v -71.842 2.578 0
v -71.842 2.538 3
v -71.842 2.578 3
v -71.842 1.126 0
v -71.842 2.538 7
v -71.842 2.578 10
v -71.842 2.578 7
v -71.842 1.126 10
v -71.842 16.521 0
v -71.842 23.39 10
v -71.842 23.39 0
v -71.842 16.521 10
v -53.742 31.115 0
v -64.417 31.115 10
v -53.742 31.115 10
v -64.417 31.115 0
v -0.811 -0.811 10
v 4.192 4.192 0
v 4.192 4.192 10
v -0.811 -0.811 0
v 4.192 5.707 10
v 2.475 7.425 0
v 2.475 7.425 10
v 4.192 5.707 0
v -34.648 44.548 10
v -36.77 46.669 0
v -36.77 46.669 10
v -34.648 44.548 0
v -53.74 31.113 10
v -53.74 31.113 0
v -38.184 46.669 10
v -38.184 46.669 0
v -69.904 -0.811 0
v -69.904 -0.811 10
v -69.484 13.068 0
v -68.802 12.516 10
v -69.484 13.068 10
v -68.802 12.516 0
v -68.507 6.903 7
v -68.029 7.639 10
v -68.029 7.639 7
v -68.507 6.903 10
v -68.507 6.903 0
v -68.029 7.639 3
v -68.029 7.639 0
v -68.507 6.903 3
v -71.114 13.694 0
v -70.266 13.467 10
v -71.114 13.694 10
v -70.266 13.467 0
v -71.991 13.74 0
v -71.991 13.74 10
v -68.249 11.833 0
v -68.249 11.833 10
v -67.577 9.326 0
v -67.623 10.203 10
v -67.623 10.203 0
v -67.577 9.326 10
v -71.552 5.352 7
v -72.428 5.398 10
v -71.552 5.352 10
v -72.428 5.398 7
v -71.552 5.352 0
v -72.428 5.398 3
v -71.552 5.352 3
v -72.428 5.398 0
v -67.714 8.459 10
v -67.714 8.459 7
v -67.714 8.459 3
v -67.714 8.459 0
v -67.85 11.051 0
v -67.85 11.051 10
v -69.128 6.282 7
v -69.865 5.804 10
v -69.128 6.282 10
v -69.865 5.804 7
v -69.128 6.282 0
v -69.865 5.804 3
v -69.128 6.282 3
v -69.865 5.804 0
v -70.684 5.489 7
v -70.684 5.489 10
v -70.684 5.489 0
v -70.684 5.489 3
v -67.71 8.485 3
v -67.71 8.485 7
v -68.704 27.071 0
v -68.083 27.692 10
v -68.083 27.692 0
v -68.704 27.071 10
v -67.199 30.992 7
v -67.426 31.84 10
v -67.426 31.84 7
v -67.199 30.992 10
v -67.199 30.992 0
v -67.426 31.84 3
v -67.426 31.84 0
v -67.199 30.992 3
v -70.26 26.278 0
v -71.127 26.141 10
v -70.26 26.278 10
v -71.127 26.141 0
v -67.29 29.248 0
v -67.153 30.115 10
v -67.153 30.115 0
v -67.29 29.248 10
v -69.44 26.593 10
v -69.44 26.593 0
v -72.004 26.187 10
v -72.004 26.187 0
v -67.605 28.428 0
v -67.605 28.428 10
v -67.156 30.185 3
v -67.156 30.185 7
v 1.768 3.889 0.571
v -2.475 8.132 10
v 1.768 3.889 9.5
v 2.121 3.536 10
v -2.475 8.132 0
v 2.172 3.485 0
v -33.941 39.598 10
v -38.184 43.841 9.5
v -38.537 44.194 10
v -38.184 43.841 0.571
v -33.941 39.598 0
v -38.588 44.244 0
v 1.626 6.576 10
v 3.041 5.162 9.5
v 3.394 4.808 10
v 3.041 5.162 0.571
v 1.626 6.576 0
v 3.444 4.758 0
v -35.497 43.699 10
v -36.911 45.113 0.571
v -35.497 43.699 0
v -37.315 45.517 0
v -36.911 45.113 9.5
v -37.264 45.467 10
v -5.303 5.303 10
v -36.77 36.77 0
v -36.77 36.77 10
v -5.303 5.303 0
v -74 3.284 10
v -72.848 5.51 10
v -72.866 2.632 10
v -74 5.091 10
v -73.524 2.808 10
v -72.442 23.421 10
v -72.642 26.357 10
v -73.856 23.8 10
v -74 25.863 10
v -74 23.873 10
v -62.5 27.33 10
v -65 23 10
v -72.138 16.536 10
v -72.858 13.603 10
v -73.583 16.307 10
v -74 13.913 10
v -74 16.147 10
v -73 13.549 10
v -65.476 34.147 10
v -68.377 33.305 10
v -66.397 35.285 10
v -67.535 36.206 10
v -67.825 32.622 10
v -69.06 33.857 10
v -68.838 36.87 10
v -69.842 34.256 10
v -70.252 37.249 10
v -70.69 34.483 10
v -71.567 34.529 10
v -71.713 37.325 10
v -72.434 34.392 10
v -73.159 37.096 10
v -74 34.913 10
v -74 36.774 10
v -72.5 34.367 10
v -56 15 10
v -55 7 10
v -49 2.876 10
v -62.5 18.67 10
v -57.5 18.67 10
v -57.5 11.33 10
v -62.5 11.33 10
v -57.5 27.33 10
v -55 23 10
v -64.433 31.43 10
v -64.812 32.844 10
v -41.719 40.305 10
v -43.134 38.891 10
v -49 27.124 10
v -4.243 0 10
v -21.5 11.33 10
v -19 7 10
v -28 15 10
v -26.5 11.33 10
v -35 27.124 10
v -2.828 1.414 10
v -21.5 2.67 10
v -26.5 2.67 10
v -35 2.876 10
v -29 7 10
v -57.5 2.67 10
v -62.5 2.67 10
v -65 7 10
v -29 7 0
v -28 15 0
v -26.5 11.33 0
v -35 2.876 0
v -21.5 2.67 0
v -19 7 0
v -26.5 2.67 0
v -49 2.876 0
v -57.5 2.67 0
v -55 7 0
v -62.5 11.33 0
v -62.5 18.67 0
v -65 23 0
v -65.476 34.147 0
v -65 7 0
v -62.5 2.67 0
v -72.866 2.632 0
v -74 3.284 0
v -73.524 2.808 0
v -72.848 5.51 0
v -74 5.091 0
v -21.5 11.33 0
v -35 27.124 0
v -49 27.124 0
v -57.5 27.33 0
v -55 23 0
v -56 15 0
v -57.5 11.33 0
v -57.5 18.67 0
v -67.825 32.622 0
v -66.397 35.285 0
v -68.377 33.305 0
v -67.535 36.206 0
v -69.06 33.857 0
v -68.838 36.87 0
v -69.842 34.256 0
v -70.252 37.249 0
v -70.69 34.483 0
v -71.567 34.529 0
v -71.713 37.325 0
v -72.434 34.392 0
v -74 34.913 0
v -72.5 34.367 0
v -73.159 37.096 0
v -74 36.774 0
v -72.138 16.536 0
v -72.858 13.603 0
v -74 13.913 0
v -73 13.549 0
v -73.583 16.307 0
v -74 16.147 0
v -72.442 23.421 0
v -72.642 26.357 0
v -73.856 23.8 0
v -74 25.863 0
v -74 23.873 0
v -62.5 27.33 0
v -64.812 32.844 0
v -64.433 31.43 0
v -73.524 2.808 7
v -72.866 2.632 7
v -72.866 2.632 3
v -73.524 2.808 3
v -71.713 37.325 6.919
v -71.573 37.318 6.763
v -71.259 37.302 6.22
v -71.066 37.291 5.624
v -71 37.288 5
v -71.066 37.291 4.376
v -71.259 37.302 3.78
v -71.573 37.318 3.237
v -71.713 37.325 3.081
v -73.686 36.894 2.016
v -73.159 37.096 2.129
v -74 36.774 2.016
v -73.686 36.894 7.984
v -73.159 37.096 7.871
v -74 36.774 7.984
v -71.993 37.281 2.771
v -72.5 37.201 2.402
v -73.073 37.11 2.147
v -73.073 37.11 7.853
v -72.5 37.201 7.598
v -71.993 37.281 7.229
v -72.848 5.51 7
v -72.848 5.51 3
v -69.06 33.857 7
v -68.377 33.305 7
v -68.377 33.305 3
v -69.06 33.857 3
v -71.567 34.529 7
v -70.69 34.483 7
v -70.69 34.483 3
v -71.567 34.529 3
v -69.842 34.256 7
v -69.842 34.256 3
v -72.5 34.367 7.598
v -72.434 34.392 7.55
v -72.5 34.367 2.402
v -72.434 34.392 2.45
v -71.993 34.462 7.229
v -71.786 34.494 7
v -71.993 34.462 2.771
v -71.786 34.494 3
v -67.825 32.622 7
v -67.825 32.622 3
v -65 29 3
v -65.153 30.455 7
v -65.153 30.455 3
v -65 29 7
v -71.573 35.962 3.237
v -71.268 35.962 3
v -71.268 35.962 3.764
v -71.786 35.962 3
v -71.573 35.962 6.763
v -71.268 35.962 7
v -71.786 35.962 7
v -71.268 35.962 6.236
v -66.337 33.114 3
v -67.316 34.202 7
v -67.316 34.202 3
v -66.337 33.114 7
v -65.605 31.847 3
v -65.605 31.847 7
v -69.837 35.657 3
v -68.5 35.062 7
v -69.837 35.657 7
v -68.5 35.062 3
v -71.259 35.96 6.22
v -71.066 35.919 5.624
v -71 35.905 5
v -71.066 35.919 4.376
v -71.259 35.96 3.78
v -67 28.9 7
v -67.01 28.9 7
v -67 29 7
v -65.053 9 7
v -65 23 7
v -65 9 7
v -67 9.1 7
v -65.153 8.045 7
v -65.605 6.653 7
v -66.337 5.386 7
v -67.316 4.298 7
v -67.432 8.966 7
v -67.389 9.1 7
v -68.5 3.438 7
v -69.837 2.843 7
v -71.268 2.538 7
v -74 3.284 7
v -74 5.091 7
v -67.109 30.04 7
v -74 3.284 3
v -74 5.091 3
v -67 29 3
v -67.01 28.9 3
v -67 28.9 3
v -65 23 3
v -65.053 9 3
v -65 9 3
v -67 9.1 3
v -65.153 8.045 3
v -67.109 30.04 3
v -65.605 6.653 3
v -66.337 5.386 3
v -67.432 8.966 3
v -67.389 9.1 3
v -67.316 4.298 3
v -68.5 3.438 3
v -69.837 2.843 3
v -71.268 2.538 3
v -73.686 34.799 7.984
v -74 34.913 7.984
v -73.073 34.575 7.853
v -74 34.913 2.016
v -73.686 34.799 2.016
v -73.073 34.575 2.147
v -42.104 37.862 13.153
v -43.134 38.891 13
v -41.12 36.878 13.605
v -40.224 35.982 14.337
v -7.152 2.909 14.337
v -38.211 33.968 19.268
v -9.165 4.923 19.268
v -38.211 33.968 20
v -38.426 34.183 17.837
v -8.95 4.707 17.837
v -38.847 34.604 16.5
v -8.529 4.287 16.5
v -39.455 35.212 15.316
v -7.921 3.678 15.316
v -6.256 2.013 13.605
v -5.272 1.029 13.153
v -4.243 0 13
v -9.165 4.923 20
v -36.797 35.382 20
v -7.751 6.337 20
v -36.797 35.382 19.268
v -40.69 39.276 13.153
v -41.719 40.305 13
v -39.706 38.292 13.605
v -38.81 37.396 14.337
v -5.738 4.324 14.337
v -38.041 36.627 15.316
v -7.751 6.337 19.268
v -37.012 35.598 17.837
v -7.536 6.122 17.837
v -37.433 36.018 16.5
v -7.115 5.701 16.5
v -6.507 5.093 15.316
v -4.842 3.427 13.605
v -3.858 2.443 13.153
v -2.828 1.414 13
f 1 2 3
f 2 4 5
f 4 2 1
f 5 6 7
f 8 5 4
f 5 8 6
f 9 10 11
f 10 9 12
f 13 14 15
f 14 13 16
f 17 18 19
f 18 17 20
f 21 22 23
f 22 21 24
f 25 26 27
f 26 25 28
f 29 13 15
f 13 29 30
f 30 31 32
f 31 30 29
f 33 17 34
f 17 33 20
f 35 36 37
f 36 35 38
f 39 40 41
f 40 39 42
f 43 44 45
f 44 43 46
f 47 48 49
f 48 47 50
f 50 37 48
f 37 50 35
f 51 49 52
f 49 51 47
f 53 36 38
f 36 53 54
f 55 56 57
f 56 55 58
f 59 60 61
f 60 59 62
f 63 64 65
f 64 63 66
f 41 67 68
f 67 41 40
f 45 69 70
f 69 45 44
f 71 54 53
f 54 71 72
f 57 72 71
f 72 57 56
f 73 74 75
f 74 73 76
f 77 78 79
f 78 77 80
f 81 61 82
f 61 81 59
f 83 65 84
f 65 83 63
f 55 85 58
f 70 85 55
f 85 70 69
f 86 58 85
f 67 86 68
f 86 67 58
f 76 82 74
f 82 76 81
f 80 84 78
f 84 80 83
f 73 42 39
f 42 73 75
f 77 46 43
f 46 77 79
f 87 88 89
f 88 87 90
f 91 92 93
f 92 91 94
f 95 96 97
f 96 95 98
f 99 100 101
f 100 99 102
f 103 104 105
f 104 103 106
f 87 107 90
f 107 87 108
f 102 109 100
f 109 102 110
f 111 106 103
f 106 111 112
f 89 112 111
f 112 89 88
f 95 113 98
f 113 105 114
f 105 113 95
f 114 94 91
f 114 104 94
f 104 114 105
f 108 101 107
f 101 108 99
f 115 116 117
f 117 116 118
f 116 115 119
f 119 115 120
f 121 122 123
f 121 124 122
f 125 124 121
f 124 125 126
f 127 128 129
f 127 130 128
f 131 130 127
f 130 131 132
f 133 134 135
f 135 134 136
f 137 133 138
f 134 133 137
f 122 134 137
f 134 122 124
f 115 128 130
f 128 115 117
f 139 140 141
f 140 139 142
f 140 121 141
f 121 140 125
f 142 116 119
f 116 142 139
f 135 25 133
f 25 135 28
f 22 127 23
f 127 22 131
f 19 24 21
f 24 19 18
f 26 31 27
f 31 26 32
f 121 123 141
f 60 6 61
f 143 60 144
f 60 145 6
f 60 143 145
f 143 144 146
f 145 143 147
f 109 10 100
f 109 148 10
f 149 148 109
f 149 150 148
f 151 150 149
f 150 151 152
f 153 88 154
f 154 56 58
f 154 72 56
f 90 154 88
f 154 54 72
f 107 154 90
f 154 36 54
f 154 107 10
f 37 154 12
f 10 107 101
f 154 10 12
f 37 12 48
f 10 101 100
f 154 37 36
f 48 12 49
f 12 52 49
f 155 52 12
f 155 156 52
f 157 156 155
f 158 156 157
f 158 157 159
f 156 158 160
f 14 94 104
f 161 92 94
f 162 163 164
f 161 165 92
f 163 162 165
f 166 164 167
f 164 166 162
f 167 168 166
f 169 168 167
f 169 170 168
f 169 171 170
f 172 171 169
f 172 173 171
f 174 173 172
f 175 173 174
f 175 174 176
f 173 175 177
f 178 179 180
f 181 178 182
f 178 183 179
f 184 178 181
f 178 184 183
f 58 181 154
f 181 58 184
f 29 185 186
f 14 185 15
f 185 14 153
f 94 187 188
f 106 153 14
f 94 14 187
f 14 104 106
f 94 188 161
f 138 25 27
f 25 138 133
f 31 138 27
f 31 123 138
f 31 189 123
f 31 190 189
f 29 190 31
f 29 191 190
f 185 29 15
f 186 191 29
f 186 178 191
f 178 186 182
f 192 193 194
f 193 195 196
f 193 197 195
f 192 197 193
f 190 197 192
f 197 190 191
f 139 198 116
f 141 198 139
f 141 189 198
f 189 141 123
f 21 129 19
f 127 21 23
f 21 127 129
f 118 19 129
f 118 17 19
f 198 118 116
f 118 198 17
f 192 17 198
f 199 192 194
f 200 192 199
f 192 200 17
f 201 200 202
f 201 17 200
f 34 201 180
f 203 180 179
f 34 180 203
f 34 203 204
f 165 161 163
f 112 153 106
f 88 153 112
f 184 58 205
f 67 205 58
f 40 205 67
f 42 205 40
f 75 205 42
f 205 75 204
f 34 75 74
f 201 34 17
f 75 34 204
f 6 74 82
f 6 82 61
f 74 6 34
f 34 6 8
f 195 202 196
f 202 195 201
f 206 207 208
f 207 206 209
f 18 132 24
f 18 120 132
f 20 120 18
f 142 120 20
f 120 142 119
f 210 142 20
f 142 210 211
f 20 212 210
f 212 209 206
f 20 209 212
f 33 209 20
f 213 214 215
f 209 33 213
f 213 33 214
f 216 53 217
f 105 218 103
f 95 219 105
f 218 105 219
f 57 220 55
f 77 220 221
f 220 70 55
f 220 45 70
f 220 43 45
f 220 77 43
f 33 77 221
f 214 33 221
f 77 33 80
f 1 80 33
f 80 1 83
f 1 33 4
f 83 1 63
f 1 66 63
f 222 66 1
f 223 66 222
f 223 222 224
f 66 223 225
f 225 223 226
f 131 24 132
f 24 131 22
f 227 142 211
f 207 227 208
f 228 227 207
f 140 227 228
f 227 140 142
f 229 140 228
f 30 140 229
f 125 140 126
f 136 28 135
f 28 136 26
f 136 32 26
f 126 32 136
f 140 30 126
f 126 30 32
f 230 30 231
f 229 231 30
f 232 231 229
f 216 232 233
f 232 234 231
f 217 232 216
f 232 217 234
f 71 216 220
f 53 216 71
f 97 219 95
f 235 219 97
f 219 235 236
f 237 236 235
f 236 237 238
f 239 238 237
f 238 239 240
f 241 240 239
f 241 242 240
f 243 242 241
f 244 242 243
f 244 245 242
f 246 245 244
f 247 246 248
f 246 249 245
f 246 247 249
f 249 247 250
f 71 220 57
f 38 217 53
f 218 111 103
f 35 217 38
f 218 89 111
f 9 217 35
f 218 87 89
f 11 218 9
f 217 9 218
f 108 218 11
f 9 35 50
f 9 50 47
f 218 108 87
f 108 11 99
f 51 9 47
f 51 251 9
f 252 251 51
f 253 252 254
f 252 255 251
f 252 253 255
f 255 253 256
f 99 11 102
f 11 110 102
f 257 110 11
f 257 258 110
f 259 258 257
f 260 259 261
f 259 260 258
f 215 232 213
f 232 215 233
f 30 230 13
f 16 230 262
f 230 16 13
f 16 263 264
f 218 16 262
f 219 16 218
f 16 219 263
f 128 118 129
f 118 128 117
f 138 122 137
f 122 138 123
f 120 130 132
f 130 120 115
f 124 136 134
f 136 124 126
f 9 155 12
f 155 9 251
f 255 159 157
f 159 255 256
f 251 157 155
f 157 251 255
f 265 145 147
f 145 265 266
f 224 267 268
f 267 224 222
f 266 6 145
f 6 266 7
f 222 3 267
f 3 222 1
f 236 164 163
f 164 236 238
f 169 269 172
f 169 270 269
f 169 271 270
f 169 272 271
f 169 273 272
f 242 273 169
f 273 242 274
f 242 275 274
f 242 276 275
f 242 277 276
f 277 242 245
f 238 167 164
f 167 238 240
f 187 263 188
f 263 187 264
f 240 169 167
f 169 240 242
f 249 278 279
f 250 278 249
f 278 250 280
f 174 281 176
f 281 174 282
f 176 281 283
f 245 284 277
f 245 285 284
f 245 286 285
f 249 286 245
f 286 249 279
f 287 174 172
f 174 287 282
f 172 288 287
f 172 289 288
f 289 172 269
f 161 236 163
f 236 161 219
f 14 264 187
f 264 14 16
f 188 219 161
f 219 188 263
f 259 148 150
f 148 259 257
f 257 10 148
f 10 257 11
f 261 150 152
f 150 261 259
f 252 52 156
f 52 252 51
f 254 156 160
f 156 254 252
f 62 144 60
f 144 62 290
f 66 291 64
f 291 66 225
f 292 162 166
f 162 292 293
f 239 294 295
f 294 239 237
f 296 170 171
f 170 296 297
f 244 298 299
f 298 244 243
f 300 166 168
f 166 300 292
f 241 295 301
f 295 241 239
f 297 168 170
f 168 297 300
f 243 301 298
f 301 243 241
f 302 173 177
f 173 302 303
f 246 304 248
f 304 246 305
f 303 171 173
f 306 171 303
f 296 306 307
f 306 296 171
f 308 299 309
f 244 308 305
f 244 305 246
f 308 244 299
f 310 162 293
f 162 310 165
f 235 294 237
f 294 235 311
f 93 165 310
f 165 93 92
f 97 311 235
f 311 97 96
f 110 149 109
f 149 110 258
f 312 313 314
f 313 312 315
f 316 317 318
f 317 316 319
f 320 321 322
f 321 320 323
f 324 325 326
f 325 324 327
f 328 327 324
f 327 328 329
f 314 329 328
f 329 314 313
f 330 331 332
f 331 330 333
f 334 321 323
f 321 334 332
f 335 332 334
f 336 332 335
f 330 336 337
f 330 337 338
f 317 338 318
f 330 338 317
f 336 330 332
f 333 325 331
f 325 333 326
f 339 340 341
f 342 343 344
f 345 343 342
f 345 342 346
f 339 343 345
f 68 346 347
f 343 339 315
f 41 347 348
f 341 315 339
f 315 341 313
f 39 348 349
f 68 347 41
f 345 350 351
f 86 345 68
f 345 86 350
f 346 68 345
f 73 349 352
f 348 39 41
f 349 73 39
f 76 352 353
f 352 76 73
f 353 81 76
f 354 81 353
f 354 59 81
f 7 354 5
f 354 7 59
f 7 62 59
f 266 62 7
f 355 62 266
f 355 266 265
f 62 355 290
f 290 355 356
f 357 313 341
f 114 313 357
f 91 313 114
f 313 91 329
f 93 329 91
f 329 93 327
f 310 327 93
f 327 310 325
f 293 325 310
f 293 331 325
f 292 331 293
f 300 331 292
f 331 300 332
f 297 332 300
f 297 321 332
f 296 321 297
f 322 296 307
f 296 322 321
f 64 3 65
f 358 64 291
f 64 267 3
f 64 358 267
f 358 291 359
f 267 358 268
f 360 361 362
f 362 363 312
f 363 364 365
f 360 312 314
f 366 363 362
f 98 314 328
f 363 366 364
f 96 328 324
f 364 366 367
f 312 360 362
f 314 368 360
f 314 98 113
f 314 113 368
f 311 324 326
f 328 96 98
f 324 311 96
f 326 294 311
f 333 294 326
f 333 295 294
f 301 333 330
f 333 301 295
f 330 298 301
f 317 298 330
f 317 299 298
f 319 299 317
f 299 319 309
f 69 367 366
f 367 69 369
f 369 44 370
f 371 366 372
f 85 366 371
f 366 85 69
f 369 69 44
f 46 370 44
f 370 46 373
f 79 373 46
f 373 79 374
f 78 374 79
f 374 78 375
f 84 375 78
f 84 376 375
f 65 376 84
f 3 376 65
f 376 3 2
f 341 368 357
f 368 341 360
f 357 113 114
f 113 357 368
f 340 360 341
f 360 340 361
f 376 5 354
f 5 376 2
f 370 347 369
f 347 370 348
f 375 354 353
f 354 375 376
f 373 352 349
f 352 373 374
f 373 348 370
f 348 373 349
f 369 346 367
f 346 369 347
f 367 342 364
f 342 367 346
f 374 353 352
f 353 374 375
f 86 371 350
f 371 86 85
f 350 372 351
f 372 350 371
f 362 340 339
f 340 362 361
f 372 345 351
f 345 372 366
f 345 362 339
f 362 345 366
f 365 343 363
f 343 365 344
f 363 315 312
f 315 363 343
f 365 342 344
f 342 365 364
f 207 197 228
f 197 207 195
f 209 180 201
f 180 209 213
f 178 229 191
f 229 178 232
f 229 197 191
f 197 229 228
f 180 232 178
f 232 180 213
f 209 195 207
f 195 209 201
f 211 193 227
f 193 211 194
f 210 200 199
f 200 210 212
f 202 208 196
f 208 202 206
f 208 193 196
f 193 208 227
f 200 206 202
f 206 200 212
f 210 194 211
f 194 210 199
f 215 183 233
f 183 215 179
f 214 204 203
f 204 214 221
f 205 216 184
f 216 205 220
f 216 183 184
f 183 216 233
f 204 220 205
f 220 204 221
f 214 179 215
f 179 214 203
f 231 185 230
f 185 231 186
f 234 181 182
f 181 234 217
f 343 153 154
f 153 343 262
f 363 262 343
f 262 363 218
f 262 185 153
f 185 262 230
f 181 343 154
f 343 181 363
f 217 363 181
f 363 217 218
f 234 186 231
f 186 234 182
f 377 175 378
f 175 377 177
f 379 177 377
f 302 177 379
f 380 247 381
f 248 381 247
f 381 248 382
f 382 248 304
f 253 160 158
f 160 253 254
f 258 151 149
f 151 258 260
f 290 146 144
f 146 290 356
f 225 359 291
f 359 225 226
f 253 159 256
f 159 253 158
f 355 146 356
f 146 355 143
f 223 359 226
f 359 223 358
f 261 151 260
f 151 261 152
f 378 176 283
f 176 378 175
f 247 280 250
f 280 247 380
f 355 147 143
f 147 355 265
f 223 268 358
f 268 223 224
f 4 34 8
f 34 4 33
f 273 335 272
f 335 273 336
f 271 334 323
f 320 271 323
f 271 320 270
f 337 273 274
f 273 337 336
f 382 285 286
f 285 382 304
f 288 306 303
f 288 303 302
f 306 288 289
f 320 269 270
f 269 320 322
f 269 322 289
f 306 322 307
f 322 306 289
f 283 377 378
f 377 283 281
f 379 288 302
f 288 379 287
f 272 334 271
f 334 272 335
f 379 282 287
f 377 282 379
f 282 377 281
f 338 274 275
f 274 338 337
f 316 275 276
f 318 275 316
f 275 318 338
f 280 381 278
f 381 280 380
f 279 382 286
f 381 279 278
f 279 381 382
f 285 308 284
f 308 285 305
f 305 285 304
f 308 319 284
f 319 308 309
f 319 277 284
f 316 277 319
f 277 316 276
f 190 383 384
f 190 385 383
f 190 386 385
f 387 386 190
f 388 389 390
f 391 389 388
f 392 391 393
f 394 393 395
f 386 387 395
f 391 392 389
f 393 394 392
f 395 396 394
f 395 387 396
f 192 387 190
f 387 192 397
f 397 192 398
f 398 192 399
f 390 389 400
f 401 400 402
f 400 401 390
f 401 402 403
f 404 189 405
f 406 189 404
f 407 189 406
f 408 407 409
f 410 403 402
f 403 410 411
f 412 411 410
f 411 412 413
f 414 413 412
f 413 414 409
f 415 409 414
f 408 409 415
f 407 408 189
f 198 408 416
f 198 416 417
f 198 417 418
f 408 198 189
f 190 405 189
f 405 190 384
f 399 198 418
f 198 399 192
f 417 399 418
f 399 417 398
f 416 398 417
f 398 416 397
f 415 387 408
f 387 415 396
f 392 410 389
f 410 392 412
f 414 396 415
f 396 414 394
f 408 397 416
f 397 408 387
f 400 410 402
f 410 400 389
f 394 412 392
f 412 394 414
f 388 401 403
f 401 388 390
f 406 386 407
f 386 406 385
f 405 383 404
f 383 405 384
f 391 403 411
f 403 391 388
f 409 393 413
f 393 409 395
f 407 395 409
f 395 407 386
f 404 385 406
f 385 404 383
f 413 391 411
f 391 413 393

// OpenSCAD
// file: lcd-support-A.scad
//Original Prusa

// PRUSA iteration3
// lcd-support-A
// GNU GPL v3
// Josef Průša <iam@josefprusa.cz> and contributors
// http://www.reprap.org/wiki/Prusa_Mendel
// http://prusamendel.org




module body(){

difference() {
    
    union(){
        translate( [ -55, -2 , 0 ] ) cube( [ 69 , 81 , 10 ] ); 
    }
    
    union (){

    // outer body shape
    translate( [ -69.6, 32, -1 ] ) rotate([0,0,45]) cube( [ 60 , 53 , 15 ] ); 
    translate( [ 13.7, 89.7, -1 ] ) rotate([0,0,135]) cube( [ 60 , 42 , 15 ] );
    translate( [ -19, -9, -1 ] ) cube( [ 60 , 9 , 15 ] );   
    translate( [ 7, -3, -1 ] ) cube( [ 60 , 68 , 16 ] );  
    translate( [ -16, 60, -1 ] ) cube( [ 60 , 50 , 15 ] );
    translate( [ -41, -45, -1 ] ) rotate([0,0,45]) cube( [ 60 , 80 , 13 ] );  
        
    // threaded rods opening
    translate( [ -44 , 57.5 , -1 ] ) cylinder( h = 17, r = 4.2, $fn=30);  
    translate( [ -29 , 71.9 , -1 ] ) cylinder( h = 17, r = 4.2, $fn=30);  

    // pcb cout out
    translate( [ 4 , 1.5 , -1 ] ) cube( [ 1.8 , 56.5 , 17 ] ); 
    translate( [ 0 , 7.5 , -1 ] ) cube( [ 5.8 , 44.5 , 17 ] ); 
    translate( [ 4.8 , 3.5 , -1 ] ) cube( [ 5.8 , 52.5 , 17 ] );

    translate( [ 8 , -5 , -1 ] ) rotate([0,0,45]) cube( [ 5 , 5 , 17 ] );
    translate( [ 8 , 58 , -1 ] ) rotate([0,0,45]) cube( [ 5 , 5 , 17 ] );
        
    }

    // pcb inserts
    translate( [ 4, 3 , 8 ] ) rotate([45,0,0]) cube( [ 1.8 , 5 , 5 ] ); 
    translate( [ 4, 56.5 , 8 ] ) rotate([45,0,0]) cube( [ 1.8 , 5 , 5 ] );     
    translate( [ 4, 3 , -5 ] ) rotate([45,0,0]) cube( [ 1.8 , 5 , 5 ] ); 
    translate( [ 4, 56.5 , -5 ] ) rotate([45,0,0]) cube( [ 1.8 , 5 , 5 ] );     
    
}

 
difference(){
    union(){
        translate( [ -44 , 57.5 , 0 ] ) cylinder( h = 10, r = 7, $fn=30); 
        translate( [ -29 , 71.9 , 0 ] ) cylinder( h = 10, r =7 , $fn=30); 
    }
        translate( [ -44 , 57.5 , -1 ] ) cylinder( h = 17, r = 4.2, $fn=30);
        translate( [ -29 , 71.9 , -1 ] ) cylinder( h = 17, r = 4.2, $fn=30);
}
}



module ziptie()
{
difference()
{
  union(){
    difference(){
        translate( [ -72 , 29 , 3 ] ) cylinder( h = 4, r = 7, $fn=30);
        translate( [ -72 , 29 , 3 ] ) cylinder( h = 4, r = 5, $fn=30);
    }
    difference(){
        translate( [ -72 , 9.5 , 3 ] ) cylinder( h = 4, r = 7, $fn=30);
        translate( [ -72 , 11 , 3 ] ) cylinder( h = 4, r = 5, $fn=30); 
    }
    }
    translate( [ -80 , 9.1 , 3 ] )  cube( [ 15 , 19.8 , 4 ] );  
    }
    
    translate( [ -67 , 9 , 3 ] )  cube( [ 2 , 20 , 4 ] ); 
}
    




difference() {
    
rotate([0,0,45]) body();

// lightening holes
translate( [ -42 , 15 , -1 ] ) cylinder( h = 15, r = 14, $fn=6);  
translate( [ -24 , 7 , -1 ] ) cylinder( h = 15, r = 5, $fn=6);  
translate( [ -60 , 7 , -1 ] ) cylinder( h = 15, r = 5, $fn=6);  
translate( [ -60 , 23 , -1 ] ) cylinder( h = 15, r = 5, $fn=6);  
    
// threaded rods corners
translate( [ -71 , 28.5 , -1 ] ) rotate([0,0,70]) cube( [ 5 , 10 , 15 ] );   
translate( [ -71 , 7.5 , -1 ] ) rotate([0,0,70]) cube( [ 5 , 10 , 15 ] );      
translate( [ -80 , 29, -1 ] ) rotate([0,0,-70]) cube( [ 5 , 10 , 15 ] );   
translate( [ -82 , 7.5 , -1 ] ) rotate([0,0,-70]) cube( [ 5 , 10 , 15 ] );      
translate( [ -86 , 0 , -1 ] ) cube( [ 12 , 50 , 15 ] );  
translate( [ -83 , -16 , -1 ] ) rotate([0,0,45]) cube( [ 20 , 20 , 15 ] );  

ziptie();
// ziptie head cutout
translate( [ -74 , 38 , 5 ] ) rotate([90,0,0]) cylinder( h = 5, r = 3, $fn=30);  
    


}
// main file
//Original Prusa

// PRUSA iteration3
// lcd-support-B
// GNU GPL v3
// Josef Průša <iam@josefprusa.cz> and contributors
// http://www.reprap.org/wiki/Prusa_Mendel
// http://prusamendel.org

include<lcd-support-A.scad>;

//SD card cover
rotate([0,0,45]) difference(){
translate( [ -3 , 3 , 10 ] )  cube( [ 2 , 55 , 10 ] ); 
translate( [ -4 , 3 , 20 ] ) rotate([0,90,0]) cylinder( h = 4, r = 7, $fn=30); 
translate( [ -4 , 58 , 20 ] ) rotate([0,90,0]) cylinder( h = 4, r = 7, $fn=30); 
}
